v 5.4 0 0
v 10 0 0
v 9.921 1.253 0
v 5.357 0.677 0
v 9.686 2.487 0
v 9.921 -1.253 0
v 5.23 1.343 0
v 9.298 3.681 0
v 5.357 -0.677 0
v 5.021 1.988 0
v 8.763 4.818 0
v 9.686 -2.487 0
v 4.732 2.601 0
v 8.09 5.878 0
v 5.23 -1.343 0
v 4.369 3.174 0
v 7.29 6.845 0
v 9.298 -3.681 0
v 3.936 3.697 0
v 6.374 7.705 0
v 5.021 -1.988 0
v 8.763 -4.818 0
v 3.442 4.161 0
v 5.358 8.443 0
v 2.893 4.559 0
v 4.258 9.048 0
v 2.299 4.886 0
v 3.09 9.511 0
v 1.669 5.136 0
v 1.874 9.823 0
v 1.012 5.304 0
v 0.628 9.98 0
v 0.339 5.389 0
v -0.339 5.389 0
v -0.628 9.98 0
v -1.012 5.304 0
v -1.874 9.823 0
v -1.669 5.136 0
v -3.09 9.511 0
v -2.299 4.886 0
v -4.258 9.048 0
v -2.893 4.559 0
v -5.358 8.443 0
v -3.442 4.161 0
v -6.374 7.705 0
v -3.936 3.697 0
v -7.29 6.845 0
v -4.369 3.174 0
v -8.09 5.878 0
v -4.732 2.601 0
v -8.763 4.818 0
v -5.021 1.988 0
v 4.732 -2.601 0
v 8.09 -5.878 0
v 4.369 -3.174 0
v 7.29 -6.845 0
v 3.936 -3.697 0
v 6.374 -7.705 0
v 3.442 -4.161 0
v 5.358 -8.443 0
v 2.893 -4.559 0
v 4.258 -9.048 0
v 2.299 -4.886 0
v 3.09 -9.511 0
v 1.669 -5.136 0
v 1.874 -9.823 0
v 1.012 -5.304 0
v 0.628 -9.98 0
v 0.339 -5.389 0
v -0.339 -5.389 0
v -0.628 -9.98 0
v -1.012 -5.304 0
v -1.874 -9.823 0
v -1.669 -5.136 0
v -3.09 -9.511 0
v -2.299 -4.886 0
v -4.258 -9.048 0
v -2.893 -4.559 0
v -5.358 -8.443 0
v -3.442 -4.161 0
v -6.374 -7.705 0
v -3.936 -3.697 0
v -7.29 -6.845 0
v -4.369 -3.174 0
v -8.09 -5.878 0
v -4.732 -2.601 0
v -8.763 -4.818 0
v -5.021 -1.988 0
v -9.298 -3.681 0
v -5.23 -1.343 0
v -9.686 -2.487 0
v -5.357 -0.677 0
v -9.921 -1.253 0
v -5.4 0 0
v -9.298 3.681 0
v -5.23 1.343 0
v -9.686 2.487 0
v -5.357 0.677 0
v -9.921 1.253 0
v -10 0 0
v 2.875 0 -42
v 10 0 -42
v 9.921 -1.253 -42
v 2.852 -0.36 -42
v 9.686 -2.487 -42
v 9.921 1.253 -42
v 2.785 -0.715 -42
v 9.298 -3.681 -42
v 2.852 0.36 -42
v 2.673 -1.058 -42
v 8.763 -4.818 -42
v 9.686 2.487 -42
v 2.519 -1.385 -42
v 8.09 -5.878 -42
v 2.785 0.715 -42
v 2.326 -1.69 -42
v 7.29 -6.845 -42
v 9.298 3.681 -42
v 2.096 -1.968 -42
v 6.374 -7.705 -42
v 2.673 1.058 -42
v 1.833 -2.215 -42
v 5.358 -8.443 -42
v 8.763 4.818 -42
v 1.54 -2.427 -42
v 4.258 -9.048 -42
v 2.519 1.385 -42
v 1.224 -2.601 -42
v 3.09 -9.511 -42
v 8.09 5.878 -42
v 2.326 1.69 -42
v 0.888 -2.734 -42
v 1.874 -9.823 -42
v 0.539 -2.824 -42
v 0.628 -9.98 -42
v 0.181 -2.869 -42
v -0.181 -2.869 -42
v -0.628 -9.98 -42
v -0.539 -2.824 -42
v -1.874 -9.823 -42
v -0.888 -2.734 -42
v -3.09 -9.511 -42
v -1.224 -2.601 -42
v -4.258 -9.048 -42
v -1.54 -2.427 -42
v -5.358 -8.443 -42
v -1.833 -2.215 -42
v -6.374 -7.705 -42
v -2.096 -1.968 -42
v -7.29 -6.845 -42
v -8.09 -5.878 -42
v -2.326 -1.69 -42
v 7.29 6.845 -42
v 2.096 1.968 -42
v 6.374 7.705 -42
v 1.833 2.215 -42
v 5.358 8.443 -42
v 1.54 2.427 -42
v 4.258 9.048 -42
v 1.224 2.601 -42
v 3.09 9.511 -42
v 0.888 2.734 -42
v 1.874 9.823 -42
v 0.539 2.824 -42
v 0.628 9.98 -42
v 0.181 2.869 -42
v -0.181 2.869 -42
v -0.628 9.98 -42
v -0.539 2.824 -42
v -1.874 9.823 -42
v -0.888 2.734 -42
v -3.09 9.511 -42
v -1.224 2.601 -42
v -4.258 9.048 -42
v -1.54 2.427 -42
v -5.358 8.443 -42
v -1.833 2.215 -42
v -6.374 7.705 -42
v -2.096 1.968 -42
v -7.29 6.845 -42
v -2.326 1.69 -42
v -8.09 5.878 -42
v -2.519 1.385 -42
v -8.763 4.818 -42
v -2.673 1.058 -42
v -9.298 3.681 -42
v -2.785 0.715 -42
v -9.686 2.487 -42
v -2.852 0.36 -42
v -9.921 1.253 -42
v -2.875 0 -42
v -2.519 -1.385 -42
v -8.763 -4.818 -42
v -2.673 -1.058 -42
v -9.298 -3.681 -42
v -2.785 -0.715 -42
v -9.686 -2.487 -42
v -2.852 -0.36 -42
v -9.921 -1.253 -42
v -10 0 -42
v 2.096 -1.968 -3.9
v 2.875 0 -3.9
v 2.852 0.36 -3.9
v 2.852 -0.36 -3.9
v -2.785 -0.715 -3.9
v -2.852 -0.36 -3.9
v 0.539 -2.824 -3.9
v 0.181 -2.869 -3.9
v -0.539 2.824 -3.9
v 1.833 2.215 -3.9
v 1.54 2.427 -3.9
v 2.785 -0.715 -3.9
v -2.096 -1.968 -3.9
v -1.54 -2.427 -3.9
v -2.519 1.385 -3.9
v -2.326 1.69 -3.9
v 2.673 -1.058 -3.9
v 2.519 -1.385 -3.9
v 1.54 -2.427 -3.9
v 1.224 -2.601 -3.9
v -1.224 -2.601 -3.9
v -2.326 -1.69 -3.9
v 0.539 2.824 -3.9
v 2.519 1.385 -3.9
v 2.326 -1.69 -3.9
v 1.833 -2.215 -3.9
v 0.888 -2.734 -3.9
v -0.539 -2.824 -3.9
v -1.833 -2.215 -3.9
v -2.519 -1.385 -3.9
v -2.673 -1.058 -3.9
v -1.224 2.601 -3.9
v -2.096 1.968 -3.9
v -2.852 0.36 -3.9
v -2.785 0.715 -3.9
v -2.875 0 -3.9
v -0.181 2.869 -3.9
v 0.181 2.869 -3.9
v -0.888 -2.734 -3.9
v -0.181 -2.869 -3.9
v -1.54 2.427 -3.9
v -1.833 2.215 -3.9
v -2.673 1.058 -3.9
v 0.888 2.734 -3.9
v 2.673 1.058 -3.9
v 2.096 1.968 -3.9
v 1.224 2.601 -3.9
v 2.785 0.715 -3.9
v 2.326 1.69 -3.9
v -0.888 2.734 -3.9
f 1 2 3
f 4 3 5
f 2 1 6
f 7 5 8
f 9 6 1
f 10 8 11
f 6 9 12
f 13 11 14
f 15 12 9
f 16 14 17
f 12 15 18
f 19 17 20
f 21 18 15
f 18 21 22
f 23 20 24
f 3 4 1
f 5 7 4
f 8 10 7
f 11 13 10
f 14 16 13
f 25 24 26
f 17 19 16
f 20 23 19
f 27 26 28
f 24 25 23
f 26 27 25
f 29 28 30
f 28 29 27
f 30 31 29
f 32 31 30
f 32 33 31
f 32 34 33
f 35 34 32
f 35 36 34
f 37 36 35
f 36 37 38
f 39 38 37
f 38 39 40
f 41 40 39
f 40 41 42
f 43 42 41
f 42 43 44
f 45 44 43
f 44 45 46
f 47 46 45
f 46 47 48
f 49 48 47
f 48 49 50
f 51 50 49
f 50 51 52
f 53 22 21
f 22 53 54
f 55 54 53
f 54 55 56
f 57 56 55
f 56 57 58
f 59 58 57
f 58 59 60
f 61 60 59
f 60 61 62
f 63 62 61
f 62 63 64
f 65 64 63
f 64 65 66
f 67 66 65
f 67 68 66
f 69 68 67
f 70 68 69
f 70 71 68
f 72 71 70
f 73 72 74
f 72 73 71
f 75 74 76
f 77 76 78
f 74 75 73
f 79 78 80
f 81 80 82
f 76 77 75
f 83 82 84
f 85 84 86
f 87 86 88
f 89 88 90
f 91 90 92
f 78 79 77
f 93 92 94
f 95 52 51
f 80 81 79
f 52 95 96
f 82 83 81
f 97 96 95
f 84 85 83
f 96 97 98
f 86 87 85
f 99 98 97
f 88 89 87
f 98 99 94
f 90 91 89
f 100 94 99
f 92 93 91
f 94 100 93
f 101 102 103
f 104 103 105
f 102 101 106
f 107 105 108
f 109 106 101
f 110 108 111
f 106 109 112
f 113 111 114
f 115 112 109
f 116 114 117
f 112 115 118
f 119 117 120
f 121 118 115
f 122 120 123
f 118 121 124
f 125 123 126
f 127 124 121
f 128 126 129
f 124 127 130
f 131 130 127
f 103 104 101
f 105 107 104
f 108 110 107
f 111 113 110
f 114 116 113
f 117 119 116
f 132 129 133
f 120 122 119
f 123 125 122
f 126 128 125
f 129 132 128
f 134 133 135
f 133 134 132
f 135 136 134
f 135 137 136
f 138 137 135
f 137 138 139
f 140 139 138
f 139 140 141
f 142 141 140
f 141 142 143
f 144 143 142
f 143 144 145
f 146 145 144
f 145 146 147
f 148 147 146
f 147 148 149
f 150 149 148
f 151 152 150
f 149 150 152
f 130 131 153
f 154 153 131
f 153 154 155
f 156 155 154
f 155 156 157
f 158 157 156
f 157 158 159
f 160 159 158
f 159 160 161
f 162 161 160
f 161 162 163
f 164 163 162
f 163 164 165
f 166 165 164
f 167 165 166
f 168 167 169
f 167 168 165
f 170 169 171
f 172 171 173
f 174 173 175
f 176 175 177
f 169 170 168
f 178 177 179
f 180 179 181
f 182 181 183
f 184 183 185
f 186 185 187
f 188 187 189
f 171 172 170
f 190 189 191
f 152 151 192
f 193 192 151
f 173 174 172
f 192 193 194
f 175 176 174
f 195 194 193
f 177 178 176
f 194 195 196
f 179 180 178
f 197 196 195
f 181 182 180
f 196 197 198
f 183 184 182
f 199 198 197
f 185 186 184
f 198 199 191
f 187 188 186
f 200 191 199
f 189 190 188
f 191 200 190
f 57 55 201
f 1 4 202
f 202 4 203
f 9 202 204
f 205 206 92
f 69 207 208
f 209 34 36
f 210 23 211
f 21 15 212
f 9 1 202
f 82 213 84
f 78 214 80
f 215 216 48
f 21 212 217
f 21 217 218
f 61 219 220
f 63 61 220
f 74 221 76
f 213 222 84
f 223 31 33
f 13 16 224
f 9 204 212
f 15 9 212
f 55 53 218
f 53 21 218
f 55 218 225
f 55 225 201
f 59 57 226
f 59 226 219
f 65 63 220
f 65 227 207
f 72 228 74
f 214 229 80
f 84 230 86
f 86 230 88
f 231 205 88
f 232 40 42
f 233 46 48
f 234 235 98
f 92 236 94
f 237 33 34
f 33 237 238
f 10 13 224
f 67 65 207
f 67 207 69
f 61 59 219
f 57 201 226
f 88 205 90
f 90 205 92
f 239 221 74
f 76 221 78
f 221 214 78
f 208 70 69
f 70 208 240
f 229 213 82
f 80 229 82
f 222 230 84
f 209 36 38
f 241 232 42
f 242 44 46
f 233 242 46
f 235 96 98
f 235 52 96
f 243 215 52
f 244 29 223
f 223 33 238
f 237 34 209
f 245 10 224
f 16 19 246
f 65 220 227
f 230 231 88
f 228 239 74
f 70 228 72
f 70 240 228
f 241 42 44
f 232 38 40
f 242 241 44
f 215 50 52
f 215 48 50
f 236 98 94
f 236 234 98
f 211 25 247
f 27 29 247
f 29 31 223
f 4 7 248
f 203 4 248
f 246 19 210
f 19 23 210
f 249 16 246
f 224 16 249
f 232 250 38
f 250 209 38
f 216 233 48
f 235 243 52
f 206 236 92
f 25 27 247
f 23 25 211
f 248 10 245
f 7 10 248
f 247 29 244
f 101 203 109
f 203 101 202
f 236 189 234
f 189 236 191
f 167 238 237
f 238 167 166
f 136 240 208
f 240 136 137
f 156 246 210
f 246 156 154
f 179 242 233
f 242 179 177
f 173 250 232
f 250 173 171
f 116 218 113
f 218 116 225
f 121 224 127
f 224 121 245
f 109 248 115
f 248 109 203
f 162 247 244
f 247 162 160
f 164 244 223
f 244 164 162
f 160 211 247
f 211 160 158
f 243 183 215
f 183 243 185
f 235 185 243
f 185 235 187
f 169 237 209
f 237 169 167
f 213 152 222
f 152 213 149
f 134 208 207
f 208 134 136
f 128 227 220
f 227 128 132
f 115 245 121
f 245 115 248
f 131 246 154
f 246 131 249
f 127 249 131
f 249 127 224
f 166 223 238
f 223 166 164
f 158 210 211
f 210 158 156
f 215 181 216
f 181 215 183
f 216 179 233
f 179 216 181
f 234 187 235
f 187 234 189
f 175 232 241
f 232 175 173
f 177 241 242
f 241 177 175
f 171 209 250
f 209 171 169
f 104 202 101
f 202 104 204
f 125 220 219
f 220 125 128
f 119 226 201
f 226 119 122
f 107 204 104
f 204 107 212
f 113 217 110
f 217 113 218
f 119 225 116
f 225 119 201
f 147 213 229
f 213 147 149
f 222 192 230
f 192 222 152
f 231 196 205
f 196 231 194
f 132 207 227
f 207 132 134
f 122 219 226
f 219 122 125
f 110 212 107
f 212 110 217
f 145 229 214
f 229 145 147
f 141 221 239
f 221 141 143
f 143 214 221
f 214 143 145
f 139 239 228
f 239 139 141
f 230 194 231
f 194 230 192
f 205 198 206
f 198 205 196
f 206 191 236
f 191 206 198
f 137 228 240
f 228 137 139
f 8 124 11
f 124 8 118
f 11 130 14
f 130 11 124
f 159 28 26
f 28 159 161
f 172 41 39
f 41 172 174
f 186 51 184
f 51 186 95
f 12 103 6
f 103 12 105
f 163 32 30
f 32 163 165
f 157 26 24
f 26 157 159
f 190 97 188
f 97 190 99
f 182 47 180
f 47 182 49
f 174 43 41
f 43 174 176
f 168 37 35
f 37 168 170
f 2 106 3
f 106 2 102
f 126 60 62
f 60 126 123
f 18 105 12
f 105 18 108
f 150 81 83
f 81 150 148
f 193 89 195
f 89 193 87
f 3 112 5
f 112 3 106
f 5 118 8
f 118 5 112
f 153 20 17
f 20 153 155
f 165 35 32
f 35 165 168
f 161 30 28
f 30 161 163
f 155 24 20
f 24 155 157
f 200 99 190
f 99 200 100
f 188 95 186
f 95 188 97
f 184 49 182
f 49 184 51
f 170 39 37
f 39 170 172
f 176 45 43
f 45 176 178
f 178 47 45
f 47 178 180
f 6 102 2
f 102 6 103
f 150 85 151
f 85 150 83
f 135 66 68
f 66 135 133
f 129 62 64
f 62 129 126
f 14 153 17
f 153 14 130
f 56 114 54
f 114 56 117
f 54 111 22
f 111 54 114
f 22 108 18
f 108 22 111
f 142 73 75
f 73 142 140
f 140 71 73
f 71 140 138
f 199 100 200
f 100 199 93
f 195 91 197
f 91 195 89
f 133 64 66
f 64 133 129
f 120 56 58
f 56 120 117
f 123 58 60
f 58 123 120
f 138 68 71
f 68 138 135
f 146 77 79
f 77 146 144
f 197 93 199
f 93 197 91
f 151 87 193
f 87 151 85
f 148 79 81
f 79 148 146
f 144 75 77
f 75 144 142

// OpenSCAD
$fn = 50;


difference() {
	union() {
		translate(v = [0, 0, -42.0000000000]) {
			cylinder(h = 42, r = 10.0000000000);
		}
		cylinder(h = 0, r = 20.0000000000);
	}
	union() {
		translate(v = [0, 0, 0]) {
			rotate(a = [0, 0, 0]) {
				difference() {
					union() {
						#translate(v = [0, 0, -42.0000000000]) {
							cylinder(h = 42, r = 2.6000000000);
						}
						#translate(v = [0, 0, -3.9000000000]) {
							cylinder(h = 3.9000000000, r = 10.0000000000, r1 = 2.8750000000, r2 = 5.4000000000);
						}
						#translate(v = [0, 0, -42.0000000000]) {
							cylinder(h = 42, r = 2.8750000000);
						}
						#translate(v = [0, 0, -42.0000000000]) {
							cylinder(h = 42, r = 2.6000000000);
						}
					}
					union();
				}
			}
		}
	}
}
